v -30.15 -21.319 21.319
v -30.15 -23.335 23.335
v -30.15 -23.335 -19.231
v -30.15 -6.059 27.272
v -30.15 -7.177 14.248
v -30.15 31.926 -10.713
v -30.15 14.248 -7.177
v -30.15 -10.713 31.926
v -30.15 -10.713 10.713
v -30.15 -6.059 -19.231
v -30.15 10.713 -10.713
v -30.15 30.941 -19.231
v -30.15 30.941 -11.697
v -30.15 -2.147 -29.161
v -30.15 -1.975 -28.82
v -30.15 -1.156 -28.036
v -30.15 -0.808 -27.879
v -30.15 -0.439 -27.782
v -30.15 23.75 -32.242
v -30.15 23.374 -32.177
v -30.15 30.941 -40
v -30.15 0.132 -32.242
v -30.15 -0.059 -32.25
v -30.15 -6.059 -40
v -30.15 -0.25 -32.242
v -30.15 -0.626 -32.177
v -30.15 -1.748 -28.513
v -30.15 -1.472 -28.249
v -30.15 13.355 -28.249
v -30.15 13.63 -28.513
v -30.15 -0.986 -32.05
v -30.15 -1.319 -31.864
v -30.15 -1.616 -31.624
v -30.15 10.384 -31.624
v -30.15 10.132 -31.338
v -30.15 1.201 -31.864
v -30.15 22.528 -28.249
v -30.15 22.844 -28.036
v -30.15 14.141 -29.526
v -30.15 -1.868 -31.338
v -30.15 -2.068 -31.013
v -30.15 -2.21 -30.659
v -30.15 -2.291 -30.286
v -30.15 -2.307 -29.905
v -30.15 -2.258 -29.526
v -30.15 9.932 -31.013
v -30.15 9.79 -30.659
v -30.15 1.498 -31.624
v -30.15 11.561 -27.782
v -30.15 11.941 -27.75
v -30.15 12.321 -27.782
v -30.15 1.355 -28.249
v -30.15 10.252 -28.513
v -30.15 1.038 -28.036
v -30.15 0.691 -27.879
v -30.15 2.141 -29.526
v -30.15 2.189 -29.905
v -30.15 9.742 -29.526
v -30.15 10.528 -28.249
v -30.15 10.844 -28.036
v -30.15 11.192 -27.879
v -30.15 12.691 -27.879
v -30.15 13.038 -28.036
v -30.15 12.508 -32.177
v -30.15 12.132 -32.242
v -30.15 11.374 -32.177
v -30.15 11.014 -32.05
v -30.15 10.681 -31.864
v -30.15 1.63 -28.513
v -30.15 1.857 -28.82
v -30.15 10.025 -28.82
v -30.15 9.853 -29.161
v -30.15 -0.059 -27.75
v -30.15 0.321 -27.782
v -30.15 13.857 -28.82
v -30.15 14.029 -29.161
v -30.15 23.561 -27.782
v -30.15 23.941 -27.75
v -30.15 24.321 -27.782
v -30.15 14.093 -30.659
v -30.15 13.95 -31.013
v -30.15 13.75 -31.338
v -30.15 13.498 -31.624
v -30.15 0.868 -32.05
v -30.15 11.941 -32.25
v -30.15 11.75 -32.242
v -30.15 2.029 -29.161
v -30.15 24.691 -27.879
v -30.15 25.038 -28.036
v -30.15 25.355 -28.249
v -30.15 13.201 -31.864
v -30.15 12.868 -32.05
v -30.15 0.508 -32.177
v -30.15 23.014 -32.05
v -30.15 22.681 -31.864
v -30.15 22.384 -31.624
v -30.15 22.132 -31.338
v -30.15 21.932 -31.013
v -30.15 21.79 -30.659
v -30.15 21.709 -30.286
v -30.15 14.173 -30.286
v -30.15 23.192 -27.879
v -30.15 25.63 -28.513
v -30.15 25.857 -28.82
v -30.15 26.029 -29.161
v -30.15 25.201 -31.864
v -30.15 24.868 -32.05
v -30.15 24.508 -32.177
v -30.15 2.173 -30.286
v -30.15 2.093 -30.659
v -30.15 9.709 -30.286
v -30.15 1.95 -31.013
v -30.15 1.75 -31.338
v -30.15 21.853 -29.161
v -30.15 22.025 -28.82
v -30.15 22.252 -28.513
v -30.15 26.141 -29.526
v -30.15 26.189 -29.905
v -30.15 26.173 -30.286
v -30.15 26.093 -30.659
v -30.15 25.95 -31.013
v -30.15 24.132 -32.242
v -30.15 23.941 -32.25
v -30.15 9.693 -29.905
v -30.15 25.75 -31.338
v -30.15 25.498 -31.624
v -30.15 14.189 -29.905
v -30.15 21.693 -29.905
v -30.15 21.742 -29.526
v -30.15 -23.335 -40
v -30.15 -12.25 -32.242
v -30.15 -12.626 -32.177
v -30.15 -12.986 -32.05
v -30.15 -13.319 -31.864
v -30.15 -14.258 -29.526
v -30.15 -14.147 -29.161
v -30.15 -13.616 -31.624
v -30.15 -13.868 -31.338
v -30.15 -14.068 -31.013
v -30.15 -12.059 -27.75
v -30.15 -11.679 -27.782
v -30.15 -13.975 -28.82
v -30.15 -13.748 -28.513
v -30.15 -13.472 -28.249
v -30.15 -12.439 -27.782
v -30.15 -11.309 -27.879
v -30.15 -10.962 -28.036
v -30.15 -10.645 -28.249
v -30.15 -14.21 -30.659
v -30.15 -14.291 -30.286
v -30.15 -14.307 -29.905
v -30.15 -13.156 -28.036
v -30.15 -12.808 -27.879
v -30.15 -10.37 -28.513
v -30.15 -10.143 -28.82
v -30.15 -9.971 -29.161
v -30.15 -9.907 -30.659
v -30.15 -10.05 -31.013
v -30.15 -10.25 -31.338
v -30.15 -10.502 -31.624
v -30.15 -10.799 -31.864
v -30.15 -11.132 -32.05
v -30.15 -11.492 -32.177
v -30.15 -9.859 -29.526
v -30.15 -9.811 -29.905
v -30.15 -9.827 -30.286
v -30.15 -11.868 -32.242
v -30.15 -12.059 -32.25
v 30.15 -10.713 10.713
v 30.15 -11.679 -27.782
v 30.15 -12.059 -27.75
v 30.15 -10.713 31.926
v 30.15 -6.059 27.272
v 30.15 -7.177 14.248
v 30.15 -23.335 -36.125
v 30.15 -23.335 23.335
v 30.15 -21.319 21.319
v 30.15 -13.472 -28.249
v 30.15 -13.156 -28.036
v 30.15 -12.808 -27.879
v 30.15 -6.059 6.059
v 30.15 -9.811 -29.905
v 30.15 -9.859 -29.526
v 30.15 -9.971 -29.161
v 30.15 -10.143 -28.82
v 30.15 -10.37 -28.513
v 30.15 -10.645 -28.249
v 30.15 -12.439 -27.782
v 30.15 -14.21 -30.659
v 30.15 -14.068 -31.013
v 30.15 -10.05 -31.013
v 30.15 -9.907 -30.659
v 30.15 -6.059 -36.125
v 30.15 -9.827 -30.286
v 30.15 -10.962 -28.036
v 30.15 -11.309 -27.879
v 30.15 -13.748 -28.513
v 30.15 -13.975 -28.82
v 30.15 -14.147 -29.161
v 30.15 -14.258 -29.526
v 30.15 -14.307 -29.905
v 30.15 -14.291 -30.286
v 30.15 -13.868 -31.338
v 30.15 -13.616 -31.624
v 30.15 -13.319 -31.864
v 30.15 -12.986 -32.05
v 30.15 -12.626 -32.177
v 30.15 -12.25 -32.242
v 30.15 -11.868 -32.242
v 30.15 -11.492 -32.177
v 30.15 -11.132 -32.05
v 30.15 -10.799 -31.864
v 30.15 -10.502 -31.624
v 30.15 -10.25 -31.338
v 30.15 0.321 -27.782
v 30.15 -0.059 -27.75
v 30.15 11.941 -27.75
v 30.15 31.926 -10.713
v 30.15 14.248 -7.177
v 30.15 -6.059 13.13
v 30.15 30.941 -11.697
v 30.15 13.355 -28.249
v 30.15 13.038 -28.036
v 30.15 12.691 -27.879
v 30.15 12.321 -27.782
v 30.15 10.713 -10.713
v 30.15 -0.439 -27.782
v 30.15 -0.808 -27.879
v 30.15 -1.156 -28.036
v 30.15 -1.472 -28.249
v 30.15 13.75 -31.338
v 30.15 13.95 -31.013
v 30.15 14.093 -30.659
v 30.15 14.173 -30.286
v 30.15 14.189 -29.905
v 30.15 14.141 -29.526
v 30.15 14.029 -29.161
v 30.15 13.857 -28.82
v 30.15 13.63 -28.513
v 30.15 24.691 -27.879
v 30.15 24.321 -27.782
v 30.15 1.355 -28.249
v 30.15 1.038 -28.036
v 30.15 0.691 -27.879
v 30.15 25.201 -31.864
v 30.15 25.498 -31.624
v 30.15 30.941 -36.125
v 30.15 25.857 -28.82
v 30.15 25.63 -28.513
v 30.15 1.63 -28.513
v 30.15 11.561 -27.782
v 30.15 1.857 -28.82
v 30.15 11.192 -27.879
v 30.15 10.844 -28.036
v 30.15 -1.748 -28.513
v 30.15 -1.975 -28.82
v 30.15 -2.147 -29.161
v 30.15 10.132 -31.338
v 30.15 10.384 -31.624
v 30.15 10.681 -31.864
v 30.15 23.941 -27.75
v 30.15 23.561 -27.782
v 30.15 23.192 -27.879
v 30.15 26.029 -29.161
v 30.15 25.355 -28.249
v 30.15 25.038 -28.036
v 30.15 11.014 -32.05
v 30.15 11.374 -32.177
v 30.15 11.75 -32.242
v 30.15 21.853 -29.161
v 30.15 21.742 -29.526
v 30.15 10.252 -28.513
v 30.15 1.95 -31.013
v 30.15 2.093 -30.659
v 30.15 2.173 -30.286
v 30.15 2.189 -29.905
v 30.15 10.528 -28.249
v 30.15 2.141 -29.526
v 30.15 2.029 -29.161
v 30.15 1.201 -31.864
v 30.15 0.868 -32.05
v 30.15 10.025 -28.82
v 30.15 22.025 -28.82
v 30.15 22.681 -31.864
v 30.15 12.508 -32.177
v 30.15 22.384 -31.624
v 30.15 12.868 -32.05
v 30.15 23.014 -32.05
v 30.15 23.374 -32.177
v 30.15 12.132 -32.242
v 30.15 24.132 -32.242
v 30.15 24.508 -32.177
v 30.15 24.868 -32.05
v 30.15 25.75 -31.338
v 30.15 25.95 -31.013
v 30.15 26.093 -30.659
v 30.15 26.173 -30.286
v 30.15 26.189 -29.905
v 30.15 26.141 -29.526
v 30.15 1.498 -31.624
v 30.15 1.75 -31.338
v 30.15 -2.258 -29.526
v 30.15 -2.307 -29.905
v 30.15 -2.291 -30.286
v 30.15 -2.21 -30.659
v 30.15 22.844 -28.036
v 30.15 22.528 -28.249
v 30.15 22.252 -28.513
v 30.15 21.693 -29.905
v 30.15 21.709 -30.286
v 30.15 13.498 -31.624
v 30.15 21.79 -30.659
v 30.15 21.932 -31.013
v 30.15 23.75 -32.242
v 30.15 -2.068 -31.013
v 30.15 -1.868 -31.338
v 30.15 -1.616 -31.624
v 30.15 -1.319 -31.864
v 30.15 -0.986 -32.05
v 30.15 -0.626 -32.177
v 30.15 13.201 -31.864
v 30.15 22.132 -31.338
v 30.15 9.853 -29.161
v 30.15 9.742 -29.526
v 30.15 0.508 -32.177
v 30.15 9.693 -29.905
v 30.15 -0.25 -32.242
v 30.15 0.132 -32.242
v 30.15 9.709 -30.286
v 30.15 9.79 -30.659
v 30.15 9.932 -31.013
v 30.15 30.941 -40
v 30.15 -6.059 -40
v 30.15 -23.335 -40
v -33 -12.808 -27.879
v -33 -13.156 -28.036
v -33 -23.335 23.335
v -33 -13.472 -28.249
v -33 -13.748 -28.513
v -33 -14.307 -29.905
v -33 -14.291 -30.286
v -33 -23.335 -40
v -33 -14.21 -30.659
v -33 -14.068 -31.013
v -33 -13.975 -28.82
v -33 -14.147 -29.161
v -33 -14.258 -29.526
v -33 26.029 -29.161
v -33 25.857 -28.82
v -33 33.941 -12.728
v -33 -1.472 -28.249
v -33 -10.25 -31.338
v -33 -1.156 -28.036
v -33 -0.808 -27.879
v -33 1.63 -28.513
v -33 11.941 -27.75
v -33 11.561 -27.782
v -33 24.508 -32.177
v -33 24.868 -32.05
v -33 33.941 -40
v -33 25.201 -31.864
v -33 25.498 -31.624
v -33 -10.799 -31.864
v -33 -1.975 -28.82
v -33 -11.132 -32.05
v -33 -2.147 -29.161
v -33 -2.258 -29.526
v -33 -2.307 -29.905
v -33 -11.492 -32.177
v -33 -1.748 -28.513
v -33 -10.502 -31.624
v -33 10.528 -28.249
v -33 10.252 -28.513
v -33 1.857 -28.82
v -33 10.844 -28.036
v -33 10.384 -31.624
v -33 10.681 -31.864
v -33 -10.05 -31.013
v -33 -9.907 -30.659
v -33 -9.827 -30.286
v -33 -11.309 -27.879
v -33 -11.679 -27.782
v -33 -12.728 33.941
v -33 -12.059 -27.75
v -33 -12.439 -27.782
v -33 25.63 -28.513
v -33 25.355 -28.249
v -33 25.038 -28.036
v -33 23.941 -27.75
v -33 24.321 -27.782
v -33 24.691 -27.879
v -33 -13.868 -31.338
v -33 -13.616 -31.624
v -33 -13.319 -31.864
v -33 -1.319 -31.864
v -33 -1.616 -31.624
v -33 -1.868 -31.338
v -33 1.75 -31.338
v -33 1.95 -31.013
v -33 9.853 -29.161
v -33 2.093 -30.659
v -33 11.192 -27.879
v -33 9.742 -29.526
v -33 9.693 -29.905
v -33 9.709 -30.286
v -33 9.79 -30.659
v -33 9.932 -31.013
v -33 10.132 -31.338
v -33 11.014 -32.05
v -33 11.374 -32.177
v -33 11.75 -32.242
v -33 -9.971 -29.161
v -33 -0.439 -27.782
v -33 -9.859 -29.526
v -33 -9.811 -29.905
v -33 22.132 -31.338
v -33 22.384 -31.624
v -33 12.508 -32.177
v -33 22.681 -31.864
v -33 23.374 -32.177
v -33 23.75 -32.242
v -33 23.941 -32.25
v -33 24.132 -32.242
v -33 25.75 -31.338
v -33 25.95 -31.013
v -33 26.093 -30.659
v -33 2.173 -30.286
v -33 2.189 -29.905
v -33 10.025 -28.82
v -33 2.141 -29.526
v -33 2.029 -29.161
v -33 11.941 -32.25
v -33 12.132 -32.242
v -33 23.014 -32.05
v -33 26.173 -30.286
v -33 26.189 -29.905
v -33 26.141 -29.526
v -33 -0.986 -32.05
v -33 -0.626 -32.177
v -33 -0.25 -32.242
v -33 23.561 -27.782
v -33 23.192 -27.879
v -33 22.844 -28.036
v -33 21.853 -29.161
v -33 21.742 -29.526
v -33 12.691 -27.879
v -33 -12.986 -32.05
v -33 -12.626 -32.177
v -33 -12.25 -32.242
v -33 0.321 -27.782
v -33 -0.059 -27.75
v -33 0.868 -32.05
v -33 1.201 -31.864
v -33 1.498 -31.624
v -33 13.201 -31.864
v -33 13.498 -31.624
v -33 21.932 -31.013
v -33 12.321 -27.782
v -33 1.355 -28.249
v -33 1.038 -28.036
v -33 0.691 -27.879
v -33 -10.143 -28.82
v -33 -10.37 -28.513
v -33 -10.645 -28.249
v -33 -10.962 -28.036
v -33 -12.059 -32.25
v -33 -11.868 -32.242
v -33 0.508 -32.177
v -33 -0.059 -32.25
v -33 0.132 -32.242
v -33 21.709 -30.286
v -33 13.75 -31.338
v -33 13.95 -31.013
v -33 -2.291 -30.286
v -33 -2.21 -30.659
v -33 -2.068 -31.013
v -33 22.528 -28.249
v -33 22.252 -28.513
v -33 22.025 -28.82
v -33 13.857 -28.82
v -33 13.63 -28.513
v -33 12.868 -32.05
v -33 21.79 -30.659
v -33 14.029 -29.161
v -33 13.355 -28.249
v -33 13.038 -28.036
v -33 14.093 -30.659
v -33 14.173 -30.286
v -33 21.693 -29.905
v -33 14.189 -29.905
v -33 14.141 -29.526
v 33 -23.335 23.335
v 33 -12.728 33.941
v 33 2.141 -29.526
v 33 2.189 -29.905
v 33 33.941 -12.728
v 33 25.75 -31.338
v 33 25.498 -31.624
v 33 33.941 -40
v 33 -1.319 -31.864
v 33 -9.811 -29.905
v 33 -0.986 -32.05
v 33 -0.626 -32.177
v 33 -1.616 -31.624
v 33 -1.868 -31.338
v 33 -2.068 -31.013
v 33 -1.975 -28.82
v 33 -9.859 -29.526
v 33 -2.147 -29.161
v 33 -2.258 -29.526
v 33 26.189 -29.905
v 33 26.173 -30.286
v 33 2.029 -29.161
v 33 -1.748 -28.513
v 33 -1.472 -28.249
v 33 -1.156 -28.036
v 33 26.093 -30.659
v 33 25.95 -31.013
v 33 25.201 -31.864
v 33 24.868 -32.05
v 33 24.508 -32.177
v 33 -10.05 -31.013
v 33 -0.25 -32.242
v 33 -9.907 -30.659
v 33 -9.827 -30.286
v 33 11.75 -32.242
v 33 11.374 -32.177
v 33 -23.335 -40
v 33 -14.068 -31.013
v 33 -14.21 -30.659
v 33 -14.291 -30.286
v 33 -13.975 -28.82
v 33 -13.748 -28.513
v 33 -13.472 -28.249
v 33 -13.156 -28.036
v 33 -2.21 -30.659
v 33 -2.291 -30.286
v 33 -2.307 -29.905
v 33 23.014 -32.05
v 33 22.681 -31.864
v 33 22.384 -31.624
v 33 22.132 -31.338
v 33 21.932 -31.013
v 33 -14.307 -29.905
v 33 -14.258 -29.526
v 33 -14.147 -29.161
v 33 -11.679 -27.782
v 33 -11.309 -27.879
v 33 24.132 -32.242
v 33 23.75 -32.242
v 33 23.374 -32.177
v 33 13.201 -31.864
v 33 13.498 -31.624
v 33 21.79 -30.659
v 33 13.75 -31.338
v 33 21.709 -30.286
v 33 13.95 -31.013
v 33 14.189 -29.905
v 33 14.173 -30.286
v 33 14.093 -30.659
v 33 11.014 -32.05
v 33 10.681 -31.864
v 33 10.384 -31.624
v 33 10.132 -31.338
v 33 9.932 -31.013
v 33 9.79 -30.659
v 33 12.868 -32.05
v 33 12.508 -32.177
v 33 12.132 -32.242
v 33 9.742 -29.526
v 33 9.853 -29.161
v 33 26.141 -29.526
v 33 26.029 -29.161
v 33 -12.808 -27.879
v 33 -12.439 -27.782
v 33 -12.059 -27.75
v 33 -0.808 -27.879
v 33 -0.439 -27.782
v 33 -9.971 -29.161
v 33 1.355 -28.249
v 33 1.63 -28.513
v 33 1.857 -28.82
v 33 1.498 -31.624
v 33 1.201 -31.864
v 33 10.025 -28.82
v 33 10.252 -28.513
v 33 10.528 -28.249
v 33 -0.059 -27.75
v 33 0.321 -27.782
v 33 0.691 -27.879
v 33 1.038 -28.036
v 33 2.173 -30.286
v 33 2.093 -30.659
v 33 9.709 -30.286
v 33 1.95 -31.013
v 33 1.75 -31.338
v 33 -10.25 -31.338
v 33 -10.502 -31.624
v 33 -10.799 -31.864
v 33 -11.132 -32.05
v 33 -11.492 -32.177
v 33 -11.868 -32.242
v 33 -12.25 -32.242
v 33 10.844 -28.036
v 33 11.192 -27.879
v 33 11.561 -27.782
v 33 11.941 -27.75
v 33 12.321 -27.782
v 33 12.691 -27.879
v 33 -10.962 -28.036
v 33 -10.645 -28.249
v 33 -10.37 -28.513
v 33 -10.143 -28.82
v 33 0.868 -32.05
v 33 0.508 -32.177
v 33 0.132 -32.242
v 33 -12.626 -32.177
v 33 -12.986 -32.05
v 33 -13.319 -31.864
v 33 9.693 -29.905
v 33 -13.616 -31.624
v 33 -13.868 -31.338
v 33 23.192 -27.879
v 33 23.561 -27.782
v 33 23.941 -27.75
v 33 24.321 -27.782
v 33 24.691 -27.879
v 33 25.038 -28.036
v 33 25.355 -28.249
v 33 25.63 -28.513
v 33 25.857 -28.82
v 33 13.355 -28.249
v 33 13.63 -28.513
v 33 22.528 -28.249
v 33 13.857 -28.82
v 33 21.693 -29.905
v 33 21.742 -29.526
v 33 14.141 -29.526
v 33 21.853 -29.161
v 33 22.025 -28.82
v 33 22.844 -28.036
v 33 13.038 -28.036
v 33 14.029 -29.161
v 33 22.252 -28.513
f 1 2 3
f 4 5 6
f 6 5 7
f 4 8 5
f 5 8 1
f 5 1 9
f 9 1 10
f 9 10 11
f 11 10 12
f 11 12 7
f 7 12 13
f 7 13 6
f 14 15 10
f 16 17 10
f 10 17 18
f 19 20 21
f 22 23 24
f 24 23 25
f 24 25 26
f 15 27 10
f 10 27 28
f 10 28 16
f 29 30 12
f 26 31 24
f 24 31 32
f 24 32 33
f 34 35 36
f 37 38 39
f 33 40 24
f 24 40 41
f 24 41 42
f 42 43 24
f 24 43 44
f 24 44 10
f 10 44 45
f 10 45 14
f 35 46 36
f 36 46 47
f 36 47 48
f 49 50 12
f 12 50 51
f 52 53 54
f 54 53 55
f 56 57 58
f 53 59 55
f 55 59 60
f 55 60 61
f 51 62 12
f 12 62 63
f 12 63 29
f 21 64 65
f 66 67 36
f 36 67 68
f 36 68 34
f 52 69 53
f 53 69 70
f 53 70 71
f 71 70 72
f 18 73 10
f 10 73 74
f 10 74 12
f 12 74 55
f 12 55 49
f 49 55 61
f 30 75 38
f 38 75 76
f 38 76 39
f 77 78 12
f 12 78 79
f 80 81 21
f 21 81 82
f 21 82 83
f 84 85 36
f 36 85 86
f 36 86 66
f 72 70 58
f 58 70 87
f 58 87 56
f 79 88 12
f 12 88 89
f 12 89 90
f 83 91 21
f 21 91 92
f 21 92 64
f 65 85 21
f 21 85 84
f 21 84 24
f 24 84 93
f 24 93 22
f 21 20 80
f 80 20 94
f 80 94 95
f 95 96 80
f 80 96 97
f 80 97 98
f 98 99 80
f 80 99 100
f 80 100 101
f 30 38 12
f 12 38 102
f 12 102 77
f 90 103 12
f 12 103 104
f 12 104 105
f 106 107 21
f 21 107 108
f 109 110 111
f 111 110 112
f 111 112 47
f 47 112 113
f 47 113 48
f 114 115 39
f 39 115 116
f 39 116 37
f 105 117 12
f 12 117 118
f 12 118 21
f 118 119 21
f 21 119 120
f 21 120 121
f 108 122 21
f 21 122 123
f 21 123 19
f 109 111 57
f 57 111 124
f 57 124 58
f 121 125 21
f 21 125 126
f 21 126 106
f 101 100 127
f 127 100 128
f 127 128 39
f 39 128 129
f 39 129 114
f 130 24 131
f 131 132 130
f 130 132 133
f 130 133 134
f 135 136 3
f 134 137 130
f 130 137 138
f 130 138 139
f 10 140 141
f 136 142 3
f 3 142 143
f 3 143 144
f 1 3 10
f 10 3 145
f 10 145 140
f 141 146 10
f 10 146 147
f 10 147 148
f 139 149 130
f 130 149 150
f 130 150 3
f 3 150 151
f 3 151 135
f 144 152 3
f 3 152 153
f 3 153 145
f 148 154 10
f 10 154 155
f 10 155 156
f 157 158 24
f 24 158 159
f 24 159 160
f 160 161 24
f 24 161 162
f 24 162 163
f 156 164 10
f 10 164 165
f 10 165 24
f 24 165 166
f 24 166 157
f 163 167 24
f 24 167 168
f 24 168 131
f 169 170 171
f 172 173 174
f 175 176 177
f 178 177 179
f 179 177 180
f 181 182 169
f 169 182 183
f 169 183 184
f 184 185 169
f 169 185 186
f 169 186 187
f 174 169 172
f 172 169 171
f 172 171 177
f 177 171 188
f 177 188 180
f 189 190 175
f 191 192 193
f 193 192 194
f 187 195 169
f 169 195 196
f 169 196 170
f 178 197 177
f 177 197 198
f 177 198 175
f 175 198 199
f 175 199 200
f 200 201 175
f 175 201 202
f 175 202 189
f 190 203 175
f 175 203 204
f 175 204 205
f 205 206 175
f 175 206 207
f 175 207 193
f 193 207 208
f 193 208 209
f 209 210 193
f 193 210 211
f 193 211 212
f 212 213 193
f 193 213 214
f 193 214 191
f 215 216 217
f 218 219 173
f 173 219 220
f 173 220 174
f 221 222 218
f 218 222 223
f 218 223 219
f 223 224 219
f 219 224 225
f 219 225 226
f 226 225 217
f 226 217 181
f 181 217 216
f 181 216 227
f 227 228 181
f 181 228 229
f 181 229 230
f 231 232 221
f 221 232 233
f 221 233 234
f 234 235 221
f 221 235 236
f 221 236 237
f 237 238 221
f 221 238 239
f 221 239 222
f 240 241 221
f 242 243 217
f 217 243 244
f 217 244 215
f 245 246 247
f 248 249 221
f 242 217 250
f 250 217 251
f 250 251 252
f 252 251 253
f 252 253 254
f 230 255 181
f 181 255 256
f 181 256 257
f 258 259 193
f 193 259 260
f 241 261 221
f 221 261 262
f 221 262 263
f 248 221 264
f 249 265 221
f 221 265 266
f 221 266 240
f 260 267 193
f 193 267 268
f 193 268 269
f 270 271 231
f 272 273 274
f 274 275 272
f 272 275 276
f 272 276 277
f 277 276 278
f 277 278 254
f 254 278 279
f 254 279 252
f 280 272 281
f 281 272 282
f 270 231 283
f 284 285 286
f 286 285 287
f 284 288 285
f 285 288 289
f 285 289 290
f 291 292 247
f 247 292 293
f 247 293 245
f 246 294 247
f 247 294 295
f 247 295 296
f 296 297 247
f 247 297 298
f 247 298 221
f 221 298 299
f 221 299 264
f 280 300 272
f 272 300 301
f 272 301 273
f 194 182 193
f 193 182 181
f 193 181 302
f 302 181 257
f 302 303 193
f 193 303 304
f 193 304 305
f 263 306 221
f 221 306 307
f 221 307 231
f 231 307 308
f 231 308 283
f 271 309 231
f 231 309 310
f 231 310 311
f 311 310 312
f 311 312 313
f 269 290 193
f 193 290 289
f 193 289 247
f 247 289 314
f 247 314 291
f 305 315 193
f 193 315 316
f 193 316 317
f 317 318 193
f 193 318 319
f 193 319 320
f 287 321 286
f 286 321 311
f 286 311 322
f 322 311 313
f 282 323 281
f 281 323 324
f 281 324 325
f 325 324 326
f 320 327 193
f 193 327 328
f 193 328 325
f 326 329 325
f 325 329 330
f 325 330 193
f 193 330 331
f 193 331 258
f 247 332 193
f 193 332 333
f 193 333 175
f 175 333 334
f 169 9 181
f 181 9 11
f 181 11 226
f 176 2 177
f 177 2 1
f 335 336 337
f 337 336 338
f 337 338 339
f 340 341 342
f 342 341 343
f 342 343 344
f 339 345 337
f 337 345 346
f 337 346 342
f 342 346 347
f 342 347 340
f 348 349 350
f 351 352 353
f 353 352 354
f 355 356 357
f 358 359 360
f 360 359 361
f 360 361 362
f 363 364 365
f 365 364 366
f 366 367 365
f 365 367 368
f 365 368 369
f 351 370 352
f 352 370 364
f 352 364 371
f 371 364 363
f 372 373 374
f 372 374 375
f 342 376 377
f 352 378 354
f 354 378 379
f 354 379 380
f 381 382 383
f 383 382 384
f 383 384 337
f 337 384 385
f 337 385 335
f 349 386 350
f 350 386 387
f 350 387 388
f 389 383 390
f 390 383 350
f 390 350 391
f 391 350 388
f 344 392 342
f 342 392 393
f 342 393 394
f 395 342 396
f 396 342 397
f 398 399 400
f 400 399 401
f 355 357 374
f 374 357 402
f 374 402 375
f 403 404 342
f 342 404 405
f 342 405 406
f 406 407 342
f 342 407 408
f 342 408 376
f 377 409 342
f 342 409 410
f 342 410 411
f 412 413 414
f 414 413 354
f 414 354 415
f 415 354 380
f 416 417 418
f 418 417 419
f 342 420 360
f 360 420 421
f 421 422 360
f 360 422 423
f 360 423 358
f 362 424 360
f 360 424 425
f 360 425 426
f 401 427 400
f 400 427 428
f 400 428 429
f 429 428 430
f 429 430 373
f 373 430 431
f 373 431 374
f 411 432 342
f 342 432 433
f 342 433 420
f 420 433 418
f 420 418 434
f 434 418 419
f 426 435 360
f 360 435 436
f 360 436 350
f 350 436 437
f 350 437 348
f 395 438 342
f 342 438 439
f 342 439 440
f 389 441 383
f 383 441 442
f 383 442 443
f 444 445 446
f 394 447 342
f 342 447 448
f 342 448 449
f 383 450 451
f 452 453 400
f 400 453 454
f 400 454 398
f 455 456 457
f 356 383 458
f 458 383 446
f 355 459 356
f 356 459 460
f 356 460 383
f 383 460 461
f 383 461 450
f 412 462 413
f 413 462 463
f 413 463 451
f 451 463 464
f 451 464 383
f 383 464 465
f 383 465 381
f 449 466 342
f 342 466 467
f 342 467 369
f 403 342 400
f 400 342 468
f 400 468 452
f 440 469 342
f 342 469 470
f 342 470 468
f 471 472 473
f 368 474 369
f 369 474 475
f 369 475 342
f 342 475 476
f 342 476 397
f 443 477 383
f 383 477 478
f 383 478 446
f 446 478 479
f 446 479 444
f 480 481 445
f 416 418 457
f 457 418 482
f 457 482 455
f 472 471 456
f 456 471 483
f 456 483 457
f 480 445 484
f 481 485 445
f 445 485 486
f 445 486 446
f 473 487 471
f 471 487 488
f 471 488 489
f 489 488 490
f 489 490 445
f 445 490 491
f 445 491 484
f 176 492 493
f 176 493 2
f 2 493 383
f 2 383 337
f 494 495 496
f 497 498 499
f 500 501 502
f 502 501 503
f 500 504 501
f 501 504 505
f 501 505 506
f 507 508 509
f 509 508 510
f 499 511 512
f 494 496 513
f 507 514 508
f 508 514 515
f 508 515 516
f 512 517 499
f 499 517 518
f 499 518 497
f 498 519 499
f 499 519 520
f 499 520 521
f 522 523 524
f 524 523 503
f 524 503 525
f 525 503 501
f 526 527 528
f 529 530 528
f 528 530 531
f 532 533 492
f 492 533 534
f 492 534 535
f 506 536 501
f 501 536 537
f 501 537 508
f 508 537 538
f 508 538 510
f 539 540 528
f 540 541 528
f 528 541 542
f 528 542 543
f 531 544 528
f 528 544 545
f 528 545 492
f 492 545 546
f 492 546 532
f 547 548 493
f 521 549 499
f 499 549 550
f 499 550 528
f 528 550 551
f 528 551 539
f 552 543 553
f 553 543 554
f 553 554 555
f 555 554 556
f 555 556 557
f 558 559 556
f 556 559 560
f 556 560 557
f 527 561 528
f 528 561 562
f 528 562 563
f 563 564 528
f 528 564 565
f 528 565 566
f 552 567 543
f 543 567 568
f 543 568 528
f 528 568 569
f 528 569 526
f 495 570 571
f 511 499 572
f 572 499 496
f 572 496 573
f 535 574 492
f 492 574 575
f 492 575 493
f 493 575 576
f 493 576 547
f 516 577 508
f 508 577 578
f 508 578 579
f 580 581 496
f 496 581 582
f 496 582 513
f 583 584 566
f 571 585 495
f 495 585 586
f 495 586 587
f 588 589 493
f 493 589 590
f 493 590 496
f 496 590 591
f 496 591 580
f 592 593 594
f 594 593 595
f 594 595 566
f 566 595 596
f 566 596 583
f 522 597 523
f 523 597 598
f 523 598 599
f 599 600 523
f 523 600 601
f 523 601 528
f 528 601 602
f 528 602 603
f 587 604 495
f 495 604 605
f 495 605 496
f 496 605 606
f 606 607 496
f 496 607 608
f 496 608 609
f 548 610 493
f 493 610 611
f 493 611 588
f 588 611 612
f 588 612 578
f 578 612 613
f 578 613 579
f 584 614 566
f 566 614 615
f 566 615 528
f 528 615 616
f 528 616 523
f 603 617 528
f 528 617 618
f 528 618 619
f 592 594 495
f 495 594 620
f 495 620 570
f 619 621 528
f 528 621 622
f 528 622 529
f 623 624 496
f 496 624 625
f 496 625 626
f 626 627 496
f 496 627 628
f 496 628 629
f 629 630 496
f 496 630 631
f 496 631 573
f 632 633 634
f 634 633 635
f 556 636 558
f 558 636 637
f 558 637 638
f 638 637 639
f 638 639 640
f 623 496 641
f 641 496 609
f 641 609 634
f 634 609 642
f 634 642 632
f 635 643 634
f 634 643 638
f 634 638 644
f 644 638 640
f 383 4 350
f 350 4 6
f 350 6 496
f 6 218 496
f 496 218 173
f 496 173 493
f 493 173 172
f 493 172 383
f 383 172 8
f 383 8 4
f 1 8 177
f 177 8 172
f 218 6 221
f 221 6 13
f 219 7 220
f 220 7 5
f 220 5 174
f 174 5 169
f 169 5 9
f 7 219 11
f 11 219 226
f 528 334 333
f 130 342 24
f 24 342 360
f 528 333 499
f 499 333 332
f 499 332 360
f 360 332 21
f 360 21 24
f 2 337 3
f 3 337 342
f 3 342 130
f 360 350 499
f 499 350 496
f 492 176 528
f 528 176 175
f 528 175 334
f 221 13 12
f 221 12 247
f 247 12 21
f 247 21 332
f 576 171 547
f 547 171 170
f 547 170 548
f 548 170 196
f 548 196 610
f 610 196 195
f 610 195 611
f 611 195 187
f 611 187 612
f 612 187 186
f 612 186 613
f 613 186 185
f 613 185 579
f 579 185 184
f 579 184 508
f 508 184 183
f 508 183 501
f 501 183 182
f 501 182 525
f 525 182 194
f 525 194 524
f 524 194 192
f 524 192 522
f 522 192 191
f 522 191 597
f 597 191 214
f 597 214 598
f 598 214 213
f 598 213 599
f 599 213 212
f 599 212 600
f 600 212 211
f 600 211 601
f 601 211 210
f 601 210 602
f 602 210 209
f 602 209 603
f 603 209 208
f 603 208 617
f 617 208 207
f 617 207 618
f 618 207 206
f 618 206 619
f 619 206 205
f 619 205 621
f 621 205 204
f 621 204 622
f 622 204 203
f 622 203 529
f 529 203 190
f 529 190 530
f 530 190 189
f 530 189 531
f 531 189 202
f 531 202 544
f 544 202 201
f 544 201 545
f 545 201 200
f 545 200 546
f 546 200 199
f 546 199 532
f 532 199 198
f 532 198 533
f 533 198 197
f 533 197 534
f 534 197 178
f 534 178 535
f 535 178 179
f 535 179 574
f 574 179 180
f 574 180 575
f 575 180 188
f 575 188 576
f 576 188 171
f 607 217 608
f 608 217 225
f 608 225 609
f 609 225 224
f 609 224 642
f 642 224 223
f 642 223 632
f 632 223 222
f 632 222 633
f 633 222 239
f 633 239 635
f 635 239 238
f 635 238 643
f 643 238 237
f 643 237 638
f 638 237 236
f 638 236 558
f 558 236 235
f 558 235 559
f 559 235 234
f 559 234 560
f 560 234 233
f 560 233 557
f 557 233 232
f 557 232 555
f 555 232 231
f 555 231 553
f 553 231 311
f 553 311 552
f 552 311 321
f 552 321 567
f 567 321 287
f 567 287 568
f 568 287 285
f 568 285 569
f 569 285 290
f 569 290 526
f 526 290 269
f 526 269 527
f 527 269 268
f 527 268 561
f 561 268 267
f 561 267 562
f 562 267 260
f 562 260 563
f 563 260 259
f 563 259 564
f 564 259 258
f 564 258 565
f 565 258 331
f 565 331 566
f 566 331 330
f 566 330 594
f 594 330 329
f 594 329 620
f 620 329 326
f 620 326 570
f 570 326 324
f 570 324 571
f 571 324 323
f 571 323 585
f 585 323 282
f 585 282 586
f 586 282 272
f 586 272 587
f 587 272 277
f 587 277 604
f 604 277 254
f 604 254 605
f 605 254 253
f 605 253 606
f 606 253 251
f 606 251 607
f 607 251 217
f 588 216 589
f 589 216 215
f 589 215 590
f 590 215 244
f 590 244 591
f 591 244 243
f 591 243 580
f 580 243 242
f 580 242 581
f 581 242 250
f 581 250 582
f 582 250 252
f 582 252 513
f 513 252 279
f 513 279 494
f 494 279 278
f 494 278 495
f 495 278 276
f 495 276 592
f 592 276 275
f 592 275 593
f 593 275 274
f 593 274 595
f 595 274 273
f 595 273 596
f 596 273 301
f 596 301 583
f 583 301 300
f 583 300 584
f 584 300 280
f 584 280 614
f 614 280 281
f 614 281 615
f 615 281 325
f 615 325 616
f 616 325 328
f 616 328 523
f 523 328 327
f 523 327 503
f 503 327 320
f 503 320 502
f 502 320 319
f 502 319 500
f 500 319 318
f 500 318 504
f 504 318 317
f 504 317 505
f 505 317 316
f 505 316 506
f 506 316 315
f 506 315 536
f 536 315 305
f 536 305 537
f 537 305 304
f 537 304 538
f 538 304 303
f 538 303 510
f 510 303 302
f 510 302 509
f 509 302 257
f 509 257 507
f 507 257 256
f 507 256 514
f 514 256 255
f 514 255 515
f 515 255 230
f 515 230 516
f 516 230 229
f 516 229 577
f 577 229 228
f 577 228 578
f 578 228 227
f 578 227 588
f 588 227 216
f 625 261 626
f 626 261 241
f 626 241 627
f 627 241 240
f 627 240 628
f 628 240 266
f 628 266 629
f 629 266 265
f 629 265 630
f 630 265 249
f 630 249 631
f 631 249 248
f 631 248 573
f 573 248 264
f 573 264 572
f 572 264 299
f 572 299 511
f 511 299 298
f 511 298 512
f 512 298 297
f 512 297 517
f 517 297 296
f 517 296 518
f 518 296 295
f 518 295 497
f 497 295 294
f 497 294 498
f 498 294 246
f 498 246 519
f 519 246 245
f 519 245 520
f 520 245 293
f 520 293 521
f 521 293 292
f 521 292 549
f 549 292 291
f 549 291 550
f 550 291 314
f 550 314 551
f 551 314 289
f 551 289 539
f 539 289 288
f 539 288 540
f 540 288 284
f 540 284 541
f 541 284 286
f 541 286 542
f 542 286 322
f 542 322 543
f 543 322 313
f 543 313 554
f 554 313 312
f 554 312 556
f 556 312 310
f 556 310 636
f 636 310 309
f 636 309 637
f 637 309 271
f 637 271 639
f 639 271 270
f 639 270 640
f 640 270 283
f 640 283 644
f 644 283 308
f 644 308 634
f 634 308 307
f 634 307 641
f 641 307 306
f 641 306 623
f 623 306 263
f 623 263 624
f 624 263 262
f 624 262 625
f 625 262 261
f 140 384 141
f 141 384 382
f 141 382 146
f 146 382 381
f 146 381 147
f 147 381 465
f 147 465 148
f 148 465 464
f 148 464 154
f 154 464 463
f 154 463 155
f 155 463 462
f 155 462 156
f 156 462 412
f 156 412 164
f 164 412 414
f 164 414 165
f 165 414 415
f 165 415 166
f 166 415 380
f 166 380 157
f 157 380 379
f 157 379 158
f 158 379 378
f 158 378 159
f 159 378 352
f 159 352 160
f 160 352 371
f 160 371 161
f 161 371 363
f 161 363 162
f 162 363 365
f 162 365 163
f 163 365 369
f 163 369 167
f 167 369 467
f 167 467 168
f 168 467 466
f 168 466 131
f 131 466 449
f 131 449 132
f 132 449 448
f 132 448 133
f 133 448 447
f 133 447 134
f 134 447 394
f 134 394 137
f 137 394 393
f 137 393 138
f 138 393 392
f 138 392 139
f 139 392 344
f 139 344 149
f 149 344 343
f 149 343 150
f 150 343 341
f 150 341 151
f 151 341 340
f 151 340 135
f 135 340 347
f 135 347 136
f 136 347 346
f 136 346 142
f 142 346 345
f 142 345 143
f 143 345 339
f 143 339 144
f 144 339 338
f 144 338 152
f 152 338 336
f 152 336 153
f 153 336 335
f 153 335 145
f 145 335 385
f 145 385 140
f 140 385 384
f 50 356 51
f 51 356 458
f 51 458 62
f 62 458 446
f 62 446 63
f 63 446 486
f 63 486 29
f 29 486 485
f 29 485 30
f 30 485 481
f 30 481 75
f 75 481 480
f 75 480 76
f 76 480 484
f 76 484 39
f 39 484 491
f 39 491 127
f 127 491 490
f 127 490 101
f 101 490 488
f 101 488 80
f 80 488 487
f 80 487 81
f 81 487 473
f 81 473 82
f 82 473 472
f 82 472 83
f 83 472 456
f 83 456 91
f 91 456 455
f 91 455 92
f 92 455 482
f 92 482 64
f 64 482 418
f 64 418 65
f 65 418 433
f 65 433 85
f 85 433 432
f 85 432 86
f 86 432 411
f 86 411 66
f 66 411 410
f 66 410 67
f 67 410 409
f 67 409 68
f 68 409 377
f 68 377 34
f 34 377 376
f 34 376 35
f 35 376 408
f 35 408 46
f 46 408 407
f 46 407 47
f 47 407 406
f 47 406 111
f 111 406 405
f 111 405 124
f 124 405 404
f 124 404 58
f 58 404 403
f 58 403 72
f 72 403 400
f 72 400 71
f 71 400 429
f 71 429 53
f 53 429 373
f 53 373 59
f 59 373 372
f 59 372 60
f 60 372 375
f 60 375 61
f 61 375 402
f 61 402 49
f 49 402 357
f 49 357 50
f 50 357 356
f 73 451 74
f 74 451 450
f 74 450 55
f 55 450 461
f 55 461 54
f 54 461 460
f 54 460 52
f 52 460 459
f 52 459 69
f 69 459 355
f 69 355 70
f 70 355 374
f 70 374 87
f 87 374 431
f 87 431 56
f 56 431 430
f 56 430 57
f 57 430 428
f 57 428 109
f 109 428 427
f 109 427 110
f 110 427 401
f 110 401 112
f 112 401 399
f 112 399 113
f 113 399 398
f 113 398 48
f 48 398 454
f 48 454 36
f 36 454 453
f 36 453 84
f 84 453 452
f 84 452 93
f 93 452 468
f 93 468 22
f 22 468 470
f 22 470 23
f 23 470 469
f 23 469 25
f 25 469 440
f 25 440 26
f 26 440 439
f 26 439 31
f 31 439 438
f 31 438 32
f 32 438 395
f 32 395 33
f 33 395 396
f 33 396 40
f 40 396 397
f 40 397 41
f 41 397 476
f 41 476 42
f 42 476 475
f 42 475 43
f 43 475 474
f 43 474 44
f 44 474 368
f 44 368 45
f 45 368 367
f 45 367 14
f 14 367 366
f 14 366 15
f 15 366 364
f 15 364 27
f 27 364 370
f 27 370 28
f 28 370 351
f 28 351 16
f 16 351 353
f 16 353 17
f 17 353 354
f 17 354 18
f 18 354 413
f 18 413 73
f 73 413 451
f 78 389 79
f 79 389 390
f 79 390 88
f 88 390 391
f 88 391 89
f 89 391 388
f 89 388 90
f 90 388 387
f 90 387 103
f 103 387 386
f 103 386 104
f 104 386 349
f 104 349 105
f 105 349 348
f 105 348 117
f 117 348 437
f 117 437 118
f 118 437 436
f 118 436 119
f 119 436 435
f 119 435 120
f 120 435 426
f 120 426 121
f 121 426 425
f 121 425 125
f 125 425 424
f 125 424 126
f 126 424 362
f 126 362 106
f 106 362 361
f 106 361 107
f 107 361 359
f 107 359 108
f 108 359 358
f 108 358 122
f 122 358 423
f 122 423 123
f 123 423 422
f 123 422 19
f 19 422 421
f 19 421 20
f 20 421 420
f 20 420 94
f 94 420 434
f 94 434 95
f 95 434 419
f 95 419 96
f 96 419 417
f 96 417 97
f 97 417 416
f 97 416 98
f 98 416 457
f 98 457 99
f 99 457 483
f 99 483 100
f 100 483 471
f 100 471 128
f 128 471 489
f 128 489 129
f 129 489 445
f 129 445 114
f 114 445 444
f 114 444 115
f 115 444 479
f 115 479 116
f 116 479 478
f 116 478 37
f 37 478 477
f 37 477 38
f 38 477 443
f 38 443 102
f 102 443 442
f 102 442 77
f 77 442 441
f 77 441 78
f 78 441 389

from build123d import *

# Parameters (mm, degrees)
SKETCH1_W               = 66
SKETCH1_H               = 66
BOSS_EXTRUDE1_DEPTH     = 5
SKETCH2_W               = 66
SKETCH2_H               = 66
SKETCH2_W_2             = 60.3
SKETCH2_H_2             = 60.3
BOSS_EXTRUDE2_DEPTH     = 10
CUT_EXTRUDE1_DEPTH      = 55.203320931
CUT_EXTRUDE1_DEPTH_BACK = 55.203320931
SKETCH3_W               = 60.3
SKETCH3_H               = 15
BOSS_EXTRUDE3_REACH     = 100.249
BOSS_EXTRUDE3_START     = -40
SKETCH5_W               = 2.85
SKETCH5_H               = 57.275649276
BOSS_EXTRUDE4_START     = -40
BOSS_EXTRUDE4_DEPTH     = 27.272078
CUT_EXTRUDE2_DEPTH      = 88.796868052
CUT_EXTRUDE2_DEPTH_BACK = 88.796868052
CUT_EXTRUDE3_DEPTH      = 85.308955633
CUT_EXTRUDE3_DEPTH_BACK = 85.308955633
SKETCH12_R              = 2.25


with BuildPart() as part:
    # Sketch1 → Boss-Extrude1 (new body)
    with BuildSketch(Plane(origin=(0, 0, 0), x_dir=(1, 0, 0), z_dir=(0, 0.7071067811865475, 0.7071067811865477))):
        Rectangle(SKETCH1_W, SKETCH1_H)
    extrude(amount=BOSS_EXTRUDE1_DEPTH)

    # Sketch2 → Boss-Extrude2 (add)
    with BuildSketch(Plane(origin=(0, 3.535533906, 3.535533906), x_dir=(1, 0, 0), z_dir=(0, 0.7071067811865476, 0.7071067811865476))):
        Rectangle(SKETCH2_W, SKETCH2_H)
        Rectangle(SKETCH2_W_2, SKETCH2_H_2, mode=Mode.SUBTRACT)
    extrude(amount=BOSS_EXTRUDE2_DEPTH)

    # Sketch3 → Cut-Extrude1 (cut, two sides: drawn at the far end of the back side and taken through both)
    with BuildSketch(Plane(origin=(0, 3.535533906, 3.535533906), x_dir=(1, 0, 0), z_dir=(0, 0.7071067811865476, 0.7071067811865476)).offset(-CUT_EXTRUDE1_DEPTH_BACK)):
        with Locations((0, -22.65)):
            Rectangle(SKETCH3_W, SKETCH3_H)
        with Locations((0, 22.65)):
            Rectangle(SKETCH3_W, SKETCH3_H)
    extrude(amount=CUT_EXTRUDE1_DEPTH + CUT_EXTRUDE1_DEPTH_BACK, mode=Mode.SUBTRACT)

    # Boss-Extrude3: up to this plane
    boss_extrude3_end = Plane(origin=(0, 0, 0), z_dir=(0, -0.7071067811865475, -0.7071067811865477))
    # Sketch5 → Boss-Extrude3 (add, up to the surface)
    with BuildSketch(Plane.XY.offset(BOSS_EXTRUDE3_START), mode=Mode.PRIVATE) as boss_extrude3_sk1:
        with Locations((-31.575, 5.303300859)):
            Rectangle(SKETCH5_W, SKETCH5_H)
    boss_extrude3_tool1 = split(extrude(boss_extrude3_sk1.sketch, amount=BOSS_EXTRUDE3_REACH, mode=Mode.PRIVATE), bisect_by=boss_extrude3_end, keep=Keep.BOTH, mode=Mode.PRIVATE)
    add(boss_extrude3_tool1.solids().sort_by_distance((-31.575, 5.303301, -40))[0])
    # Sketch5 → Boss-Extrude3 (add, up to the surface)
    with BuildSketch(Plane.XY.offset(BOSS_EXTRUDE3_START), mode=Mode.PRIVATE) as boss_extrude3_sk2:
        with Locations((31.575, 5.303300859)):
            Rectangle(SKETCH5_W, SKETCH5_H)
    boss_extrude3_tool2 = split(extrude(boss_extrude3_sk2.sketch, amount=BOSS_EXTRUDE3_REACH, mode=Mode.PRIVATE), bisect_by=boss_extrude3_end, keep=Keep.BOTH, mode=Mode.PRIVATE)
    add(boss_extrude3_tool2.solids().sort_by_distance((31.575, 5.303301, -40))[0])

    # Sketch8 → Boss-Extrude4 (add)
    with BuildSketch(Plane.XY.offset(BOSS_EXTRUDE4_START)):
        Polygon((-33, 33.941125497), (-33, 23.334523779), (-30.15, 23.334523779), (-30.15, 30.941125497), (30.15, 30.941125497), (30.15, 23.334523779), (33, 23.334523779), (33, 33.941125497), (30.15, 33.941125497), (-30.15, 33.941125497), align=None)
    extrude(amount=BOSS_EXTRUDE4_DEPTH)

    # Sketch9 → Cut-Extrude2 (cut, two sides: drawn at the far end of the back side and taken through both)
    with BuildSketch(Plane(origin=(0, 0, -40), x_dir=(-1, 0, 0), z_dir=(0, 0, -1)).offset(-CUT_EXTRUDE2_DEPTH_BACK)):
        Polygon((30.15, 23.334523779), (30.15, 30.941125497), (-30.15, 30.941125497), (-30.15, 23.334523779), (-30.15, 21.319269453), (30.15, 21.319269453), align=None)
    extrude(amount=CUT_EXTRUDE2_DEPTH + CUT_EXTRUDE2_DEPTH_BACK, mode=Mode.SUBTRACT)

    # Sketch12 → Cut-Extrude3 (cut, two sides: drawn at the far end of the back side and taken through both)
    with BuildSketch(Plane.ZY.offset(33).offset(-CUT_EXTRUDE3_DEPTH_BACK)):
        with Locations((-30, 23.941125497)):
            Circle(SKETCH12_R)
        with Locations((-30, -12.058874503)):
            Circle(SKETCH12_R)
        with Locations((-30, 11.941125497)):
            Circle(SKETCH12_R)
        with Locations((-30, -0.058874503)):
            Circle(SKETCH12_R)
    extrude(amount=CUT_EXTRUDE3_DEPTH + CUT_EXTRUDE3_DEPTH_BACK, mode=Mode.SUBTRACT)


solid = part.part
